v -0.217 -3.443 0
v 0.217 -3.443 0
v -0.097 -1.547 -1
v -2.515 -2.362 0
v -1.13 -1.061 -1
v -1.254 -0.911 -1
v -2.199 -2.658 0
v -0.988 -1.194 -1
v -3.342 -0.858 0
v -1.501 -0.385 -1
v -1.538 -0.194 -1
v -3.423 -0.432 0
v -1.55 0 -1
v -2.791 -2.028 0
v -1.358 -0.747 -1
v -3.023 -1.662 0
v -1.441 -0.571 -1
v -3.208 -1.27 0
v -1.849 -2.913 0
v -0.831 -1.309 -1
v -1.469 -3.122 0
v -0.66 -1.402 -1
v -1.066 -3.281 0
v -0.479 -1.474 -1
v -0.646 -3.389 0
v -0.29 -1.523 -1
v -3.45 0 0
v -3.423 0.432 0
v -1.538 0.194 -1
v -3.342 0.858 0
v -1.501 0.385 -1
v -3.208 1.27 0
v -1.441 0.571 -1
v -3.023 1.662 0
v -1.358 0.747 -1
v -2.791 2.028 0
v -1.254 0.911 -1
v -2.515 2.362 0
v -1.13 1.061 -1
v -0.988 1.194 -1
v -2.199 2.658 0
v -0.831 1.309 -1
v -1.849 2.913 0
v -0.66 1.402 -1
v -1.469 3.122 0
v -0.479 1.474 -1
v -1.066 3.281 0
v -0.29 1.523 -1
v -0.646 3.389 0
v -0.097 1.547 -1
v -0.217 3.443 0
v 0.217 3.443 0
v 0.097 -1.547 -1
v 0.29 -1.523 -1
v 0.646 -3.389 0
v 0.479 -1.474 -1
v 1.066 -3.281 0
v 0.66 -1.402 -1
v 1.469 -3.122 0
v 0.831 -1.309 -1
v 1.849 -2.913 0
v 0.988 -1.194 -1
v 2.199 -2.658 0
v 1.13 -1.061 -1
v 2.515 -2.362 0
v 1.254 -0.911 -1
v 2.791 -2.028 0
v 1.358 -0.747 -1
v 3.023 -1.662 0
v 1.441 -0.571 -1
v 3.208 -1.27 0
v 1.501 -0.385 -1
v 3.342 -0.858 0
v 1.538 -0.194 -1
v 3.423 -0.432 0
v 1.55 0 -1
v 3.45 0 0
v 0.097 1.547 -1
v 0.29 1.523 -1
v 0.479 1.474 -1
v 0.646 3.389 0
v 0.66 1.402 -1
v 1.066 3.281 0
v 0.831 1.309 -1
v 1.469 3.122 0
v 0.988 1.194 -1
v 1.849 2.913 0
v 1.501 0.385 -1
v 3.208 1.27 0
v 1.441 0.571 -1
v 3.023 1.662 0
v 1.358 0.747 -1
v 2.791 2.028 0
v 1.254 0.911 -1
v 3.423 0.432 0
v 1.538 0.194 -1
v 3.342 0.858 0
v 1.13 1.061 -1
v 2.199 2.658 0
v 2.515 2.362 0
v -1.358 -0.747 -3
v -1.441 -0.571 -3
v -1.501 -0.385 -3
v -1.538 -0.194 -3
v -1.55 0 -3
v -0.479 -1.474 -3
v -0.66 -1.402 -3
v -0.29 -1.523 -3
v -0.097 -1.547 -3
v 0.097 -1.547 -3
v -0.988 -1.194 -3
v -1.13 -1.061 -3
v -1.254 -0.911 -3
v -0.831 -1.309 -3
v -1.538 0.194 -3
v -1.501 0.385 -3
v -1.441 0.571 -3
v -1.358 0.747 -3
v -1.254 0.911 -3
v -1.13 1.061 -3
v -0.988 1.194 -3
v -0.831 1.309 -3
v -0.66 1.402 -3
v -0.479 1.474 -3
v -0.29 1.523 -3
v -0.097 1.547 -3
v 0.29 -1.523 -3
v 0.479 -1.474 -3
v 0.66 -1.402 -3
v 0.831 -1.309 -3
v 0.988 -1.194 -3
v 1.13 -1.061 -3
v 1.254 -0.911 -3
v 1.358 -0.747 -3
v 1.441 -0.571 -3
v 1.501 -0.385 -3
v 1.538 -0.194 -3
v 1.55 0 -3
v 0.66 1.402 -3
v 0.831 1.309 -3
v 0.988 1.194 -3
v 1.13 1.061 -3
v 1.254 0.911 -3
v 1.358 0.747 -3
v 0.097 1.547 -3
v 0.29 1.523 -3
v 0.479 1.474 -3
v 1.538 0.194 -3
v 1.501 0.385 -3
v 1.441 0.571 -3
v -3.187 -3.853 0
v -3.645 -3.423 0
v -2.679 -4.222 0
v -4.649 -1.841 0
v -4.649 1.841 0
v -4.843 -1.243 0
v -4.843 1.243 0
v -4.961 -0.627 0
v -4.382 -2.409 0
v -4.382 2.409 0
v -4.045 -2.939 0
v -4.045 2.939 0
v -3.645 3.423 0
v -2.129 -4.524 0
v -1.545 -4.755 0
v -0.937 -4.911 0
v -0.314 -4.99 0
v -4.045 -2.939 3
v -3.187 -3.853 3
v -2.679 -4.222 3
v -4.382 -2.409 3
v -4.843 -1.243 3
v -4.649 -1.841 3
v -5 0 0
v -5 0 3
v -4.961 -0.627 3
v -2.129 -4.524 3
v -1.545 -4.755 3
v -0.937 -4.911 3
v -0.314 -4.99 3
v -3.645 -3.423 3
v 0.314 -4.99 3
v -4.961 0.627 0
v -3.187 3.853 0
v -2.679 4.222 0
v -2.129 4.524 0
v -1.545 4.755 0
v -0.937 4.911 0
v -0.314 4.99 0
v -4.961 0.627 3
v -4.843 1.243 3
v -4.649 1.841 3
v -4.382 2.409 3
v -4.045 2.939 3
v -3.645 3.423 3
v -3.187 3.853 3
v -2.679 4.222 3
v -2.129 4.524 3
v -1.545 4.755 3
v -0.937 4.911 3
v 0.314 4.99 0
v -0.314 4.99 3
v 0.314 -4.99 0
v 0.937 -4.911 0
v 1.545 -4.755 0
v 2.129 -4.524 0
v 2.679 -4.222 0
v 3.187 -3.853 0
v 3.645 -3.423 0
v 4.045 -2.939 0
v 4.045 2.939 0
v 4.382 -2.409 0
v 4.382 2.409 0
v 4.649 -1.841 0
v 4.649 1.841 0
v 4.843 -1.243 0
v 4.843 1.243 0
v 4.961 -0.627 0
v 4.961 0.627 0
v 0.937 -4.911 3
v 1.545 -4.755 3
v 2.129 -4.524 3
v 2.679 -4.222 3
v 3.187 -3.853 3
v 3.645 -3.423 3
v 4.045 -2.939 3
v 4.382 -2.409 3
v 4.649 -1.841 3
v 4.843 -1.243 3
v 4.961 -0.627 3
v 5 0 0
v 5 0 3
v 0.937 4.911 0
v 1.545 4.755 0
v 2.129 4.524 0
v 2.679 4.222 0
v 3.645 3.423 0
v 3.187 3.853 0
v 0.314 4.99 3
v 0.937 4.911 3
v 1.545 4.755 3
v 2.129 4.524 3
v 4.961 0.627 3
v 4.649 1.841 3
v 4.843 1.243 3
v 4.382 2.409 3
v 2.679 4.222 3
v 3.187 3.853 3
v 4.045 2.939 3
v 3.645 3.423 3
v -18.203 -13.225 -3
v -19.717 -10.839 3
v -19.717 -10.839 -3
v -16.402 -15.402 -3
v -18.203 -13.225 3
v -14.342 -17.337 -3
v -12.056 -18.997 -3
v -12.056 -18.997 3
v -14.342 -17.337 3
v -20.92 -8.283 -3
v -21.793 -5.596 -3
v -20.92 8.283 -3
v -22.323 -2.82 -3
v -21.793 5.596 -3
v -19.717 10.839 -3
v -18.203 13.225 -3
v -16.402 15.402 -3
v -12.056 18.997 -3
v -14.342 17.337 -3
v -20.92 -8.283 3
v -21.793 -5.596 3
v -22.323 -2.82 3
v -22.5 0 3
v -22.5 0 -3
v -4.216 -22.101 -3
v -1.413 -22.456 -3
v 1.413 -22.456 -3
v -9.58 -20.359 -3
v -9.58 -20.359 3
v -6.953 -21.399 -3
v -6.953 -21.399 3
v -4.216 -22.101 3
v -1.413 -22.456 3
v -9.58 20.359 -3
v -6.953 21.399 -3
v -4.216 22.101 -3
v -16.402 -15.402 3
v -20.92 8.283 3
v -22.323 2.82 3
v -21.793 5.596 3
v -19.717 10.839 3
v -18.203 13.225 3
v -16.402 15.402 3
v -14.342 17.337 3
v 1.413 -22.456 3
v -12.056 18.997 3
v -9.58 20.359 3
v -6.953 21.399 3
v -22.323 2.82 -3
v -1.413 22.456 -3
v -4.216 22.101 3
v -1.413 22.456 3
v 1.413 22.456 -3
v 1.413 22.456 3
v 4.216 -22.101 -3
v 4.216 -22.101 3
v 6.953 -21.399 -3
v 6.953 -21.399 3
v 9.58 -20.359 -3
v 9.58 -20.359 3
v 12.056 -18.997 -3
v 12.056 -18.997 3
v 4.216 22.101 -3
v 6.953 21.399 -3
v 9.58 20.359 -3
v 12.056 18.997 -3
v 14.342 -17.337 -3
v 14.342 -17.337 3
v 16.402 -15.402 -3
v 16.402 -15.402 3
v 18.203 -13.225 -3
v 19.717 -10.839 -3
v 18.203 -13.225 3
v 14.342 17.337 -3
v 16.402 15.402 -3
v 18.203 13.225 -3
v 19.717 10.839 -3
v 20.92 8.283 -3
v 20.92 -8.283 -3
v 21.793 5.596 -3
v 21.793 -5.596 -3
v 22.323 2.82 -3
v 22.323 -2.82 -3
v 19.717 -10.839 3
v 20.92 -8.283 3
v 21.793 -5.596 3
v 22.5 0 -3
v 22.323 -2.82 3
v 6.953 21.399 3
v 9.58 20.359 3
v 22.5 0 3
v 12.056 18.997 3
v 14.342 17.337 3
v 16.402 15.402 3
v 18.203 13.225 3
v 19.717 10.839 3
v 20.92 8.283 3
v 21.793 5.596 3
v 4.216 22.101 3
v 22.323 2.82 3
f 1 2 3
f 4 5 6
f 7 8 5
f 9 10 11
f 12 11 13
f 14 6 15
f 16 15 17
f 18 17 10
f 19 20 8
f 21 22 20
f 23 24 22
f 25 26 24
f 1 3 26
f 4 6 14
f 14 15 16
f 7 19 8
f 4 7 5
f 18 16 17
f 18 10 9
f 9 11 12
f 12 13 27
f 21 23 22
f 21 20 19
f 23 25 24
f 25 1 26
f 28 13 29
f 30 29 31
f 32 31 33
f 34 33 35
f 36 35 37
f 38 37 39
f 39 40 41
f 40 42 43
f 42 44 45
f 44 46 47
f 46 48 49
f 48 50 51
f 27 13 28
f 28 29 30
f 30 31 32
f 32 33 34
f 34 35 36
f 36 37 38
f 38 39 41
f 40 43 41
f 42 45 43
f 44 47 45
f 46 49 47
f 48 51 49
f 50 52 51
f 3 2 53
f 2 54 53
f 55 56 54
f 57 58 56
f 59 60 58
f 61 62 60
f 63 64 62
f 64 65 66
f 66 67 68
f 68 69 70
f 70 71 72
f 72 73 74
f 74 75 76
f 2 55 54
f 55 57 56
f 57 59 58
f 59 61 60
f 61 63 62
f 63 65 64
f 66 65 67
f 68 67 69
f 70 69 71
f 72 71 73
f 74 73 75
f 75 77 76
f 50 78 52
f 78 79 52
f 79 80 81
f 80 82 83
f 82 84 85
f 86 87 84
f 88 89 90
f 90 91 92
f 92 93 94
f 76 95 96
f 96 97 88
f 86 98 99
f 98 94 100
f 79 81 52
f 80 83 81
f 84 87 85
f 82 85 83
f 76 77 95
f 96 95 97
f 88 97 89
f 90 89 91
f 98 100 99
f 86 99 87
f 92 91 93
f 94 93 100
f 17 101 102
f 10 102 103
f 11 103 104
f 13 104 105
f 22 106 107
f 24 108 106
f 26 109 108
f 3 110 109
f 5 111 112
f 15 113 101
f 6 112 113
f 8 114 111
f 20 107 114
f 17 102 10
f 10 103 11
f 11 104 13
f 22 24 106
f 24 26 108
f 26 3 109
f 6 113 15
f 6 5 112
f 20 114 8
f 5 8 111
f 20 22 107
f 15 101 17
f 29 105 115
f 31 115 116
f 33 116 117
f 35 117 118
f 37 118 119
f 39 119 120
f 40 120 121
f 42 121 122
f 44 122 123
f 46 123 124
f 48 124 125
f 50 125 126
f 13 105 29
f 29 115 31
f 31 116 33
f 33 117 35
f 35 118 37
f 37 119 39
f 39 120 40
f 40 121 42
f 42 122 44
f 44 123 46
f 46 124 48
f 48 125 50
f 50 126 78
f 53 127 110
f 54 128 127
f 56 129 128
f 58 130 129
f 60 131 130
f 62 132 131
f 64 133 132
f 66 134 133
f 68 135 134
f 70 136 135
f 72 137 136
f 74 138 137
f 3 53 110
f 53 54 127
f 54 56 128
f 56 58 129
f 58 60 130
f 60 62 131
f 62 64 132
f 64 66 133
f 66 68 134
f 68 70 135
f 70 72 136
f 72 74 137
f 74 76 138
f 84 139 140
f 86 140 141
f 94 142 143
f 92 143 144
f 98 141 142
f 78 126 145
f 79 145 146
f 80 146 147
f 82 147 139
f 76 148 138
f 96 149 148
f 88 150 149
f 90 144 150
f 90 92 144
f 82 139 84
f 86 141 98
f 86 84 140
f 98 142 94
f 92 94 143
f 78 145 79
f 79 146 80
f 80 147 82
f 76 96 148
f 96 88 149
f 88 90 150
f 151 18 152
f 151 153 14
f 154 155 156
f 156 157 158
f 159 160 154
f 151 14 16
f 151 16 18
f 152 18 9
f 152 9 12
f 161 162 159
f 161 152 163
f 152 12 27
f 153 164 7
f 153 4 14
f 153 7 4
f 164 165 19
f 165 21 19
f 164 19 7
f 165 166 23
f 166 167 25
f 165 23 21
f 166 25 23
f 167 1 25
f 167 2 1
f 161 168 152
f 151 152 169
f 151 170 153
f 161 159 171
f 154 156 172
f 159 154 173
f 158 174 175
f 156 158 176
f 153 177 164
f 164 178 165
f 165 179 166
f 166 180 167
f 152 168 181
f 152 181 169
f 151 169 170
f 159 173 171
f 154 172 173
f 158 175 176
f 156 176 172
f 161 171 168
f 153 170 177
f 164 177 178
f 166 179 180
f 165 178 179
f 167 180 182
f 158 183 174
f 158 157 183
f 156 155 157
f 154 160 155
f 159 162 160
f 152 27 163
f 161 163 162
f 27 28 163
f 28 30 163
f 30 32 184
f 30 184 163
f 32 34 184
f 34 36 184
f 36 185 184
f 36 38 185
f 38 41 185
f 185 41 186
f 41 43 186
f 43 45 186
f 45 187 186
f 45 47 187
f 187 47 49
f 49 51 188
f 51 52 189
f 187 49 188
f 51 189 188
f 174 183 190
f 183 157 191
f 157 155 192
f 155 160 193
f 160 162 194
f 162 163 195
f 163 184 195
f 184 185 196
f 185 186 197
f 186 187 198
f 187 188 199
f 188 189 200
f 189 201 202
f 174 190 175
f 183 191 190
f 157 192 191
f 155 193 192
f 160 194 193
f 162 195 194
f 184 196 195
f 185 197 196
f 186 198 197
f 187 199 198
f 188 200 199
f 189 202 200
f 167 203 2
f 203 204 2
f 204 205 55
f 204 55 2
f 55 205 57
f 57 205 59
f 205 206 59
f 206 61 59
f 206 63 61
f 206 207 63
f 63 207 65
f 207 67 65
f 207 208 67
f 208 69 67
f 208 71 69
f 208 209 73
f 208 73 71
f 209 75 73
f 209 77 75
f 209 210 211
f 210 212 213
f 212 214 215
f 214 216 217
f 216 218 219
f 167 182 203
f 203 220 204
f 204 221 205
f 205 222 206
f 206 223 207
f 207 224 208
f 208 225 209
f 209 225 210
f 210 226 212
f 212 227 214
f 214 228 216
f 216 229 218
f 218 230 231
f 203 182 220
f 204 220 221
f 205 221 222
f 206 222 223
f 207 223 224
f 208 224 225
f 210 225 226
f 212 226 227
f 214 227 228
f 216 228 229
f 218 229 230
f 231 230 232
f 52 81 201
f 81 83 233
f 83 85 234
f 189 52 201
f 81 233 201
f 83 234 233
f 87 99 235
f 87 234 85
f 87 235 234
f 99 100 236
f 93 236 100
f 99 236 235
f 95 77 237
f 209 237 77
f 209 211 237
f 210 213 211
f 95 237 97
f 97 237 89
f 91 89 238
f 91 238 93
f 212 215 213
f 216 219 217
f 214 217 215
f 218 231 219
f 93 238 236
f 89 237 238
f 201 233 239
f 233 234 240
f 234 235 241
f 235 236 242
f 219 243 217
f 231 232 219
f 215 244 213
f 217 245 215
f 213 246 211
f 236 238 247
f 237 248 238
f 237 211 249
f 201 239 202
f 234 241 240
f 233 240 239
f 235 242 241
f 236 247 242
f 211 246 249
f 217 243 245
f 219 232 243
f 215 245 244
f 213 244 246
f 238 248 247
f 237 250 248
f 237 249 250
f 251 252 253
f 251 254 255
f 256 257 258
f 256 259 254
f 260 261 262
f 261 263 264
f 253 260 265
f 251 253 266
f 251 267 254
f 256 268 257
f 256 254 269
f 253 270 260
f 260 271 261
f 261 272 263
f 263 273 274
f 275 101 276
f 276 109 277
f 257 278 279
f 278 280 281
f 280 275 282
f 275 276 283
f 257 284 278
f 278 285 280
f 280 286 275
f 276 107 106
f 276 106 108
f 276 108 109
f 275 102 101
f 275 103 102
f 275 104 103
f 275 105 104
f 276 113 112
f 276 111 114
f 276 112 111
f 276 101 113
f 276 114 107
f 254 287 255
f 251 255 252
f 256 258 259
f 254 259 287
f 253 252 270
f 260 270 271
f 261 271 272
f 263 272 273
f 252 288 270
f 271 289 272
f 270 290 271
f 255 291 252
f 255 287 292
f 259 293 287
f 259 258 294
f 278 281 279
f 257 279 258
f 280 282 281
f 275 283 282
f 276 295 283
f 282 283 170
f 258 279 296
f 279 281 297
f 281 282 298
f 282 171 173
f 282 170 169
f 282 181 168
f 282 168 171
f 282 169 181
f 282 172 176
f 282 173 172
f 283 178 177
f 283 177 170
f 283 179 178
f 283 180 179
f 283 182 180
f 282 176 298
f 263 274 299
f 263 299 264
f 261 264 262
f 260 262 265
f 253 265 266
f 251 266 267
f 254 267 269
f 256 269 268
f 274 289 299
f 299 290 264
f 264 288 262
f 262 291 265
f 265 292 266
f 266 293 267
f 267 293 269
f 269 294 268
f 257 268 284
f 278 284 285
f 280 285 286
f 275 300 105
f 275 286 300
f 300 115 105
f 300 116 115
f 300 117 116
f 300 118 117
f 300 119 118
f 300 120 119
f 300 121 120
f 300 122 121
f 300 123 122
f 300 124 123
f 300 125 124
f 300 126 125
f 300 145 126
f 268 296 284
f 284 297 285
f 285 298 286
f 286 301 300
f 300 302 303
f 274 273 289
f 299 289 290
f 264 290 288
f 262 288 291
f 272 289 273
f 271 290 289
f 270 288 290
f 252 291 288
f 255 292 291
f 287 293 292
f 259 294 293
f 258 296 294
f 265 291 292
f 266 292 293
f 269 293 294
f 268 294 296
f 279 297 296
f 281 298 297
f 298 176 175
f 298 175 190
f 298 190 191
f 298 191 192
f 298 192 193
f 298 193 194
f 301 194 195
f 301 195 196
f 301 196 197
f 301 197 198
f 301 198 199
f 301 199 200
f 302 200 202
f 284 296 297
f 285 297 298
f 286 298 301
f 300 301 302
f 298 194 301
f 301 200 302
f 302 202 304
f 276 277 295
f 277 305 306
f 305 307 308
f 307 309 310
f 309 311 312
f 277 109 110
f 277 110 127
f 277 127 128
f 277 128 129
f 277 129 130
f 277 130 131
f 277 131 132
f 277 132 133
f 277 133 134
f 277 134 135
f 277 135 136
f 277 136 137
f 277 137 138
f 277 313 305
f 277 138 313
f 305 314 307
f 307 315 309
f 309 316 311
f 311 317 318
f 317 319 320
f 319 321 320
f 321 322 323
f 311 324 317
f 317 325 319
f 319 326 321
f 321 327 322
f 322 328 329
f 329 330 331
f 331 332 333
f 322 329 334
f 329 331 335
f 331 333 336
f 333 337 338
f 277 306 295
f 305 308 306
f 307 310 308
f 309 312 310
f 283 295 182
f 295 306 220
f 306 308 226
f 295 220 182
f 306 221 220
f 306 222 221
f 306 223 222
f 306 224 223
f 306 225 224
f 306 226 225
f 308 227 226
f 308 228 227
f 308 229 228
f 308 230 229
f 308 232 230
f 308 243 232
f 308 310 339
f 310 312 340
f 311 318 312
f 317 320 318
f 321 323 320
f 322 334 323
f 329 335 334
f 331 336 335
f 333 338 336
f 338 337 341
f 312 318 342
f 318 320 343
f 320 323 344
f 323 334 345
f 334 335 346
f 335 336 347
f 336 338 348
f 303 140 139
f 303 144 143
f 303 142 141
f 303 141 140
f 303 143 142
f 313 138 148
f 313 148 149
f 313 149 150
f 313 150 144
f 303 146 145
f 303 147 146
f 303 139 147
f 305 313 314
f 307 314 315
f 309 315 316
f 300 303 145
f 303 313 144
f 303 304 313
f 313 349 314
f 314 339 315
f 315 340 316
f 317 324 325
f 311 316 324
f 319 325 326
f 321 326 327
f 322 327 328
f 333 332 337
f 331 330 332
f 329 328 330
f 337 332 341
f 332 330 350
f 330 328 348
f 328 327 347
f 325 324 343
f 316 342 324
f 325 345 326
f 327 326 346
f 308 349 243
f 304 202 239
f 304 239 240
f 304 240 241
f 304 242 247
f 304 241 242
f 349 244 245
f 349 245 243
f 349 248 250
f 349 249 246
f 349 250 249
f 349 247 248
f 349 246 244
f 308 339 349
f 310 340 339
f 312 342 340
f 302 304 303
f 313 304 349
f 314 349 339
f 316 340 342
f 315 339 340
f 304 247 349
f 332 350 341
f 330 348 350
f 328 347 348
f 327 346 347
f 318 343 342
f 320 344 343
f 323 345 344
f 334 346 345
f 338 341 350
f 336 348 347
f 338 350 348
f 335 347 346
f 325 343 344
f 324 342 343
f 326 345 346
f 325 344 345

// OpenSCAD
$fn = 50;

difference() {
	union() {
		translate(v = [0, 0, -3.0]) {
			cylinder(h = 6, r = 22.5);
		}
	}
	union() {
		translate(v = [0, 0, 0]) {
			rotate(a = [0, 0, 0]) {
				difference() {
					union() {
						translate(v = [0, 0, -6.0]) {
							cylinder(h = 6, r = 1.25);
						}
						translate(v = [0, 0, -1.0]) {
							cylinder(h = 1.0, r1 = 1.55, r2 = 3.45);
						}
						translate(v = [0, 0, -6.0]) {
							cylinder(h = 6, r = 1.55);
						}
						translate(v = [0, 0, -6.0]) {
							cylinder(h = 6, r = 1.25);
						}
					}
					union();
				}
			}
		}
		#cylinder(h = 3, r = 5.0);
	}
}
